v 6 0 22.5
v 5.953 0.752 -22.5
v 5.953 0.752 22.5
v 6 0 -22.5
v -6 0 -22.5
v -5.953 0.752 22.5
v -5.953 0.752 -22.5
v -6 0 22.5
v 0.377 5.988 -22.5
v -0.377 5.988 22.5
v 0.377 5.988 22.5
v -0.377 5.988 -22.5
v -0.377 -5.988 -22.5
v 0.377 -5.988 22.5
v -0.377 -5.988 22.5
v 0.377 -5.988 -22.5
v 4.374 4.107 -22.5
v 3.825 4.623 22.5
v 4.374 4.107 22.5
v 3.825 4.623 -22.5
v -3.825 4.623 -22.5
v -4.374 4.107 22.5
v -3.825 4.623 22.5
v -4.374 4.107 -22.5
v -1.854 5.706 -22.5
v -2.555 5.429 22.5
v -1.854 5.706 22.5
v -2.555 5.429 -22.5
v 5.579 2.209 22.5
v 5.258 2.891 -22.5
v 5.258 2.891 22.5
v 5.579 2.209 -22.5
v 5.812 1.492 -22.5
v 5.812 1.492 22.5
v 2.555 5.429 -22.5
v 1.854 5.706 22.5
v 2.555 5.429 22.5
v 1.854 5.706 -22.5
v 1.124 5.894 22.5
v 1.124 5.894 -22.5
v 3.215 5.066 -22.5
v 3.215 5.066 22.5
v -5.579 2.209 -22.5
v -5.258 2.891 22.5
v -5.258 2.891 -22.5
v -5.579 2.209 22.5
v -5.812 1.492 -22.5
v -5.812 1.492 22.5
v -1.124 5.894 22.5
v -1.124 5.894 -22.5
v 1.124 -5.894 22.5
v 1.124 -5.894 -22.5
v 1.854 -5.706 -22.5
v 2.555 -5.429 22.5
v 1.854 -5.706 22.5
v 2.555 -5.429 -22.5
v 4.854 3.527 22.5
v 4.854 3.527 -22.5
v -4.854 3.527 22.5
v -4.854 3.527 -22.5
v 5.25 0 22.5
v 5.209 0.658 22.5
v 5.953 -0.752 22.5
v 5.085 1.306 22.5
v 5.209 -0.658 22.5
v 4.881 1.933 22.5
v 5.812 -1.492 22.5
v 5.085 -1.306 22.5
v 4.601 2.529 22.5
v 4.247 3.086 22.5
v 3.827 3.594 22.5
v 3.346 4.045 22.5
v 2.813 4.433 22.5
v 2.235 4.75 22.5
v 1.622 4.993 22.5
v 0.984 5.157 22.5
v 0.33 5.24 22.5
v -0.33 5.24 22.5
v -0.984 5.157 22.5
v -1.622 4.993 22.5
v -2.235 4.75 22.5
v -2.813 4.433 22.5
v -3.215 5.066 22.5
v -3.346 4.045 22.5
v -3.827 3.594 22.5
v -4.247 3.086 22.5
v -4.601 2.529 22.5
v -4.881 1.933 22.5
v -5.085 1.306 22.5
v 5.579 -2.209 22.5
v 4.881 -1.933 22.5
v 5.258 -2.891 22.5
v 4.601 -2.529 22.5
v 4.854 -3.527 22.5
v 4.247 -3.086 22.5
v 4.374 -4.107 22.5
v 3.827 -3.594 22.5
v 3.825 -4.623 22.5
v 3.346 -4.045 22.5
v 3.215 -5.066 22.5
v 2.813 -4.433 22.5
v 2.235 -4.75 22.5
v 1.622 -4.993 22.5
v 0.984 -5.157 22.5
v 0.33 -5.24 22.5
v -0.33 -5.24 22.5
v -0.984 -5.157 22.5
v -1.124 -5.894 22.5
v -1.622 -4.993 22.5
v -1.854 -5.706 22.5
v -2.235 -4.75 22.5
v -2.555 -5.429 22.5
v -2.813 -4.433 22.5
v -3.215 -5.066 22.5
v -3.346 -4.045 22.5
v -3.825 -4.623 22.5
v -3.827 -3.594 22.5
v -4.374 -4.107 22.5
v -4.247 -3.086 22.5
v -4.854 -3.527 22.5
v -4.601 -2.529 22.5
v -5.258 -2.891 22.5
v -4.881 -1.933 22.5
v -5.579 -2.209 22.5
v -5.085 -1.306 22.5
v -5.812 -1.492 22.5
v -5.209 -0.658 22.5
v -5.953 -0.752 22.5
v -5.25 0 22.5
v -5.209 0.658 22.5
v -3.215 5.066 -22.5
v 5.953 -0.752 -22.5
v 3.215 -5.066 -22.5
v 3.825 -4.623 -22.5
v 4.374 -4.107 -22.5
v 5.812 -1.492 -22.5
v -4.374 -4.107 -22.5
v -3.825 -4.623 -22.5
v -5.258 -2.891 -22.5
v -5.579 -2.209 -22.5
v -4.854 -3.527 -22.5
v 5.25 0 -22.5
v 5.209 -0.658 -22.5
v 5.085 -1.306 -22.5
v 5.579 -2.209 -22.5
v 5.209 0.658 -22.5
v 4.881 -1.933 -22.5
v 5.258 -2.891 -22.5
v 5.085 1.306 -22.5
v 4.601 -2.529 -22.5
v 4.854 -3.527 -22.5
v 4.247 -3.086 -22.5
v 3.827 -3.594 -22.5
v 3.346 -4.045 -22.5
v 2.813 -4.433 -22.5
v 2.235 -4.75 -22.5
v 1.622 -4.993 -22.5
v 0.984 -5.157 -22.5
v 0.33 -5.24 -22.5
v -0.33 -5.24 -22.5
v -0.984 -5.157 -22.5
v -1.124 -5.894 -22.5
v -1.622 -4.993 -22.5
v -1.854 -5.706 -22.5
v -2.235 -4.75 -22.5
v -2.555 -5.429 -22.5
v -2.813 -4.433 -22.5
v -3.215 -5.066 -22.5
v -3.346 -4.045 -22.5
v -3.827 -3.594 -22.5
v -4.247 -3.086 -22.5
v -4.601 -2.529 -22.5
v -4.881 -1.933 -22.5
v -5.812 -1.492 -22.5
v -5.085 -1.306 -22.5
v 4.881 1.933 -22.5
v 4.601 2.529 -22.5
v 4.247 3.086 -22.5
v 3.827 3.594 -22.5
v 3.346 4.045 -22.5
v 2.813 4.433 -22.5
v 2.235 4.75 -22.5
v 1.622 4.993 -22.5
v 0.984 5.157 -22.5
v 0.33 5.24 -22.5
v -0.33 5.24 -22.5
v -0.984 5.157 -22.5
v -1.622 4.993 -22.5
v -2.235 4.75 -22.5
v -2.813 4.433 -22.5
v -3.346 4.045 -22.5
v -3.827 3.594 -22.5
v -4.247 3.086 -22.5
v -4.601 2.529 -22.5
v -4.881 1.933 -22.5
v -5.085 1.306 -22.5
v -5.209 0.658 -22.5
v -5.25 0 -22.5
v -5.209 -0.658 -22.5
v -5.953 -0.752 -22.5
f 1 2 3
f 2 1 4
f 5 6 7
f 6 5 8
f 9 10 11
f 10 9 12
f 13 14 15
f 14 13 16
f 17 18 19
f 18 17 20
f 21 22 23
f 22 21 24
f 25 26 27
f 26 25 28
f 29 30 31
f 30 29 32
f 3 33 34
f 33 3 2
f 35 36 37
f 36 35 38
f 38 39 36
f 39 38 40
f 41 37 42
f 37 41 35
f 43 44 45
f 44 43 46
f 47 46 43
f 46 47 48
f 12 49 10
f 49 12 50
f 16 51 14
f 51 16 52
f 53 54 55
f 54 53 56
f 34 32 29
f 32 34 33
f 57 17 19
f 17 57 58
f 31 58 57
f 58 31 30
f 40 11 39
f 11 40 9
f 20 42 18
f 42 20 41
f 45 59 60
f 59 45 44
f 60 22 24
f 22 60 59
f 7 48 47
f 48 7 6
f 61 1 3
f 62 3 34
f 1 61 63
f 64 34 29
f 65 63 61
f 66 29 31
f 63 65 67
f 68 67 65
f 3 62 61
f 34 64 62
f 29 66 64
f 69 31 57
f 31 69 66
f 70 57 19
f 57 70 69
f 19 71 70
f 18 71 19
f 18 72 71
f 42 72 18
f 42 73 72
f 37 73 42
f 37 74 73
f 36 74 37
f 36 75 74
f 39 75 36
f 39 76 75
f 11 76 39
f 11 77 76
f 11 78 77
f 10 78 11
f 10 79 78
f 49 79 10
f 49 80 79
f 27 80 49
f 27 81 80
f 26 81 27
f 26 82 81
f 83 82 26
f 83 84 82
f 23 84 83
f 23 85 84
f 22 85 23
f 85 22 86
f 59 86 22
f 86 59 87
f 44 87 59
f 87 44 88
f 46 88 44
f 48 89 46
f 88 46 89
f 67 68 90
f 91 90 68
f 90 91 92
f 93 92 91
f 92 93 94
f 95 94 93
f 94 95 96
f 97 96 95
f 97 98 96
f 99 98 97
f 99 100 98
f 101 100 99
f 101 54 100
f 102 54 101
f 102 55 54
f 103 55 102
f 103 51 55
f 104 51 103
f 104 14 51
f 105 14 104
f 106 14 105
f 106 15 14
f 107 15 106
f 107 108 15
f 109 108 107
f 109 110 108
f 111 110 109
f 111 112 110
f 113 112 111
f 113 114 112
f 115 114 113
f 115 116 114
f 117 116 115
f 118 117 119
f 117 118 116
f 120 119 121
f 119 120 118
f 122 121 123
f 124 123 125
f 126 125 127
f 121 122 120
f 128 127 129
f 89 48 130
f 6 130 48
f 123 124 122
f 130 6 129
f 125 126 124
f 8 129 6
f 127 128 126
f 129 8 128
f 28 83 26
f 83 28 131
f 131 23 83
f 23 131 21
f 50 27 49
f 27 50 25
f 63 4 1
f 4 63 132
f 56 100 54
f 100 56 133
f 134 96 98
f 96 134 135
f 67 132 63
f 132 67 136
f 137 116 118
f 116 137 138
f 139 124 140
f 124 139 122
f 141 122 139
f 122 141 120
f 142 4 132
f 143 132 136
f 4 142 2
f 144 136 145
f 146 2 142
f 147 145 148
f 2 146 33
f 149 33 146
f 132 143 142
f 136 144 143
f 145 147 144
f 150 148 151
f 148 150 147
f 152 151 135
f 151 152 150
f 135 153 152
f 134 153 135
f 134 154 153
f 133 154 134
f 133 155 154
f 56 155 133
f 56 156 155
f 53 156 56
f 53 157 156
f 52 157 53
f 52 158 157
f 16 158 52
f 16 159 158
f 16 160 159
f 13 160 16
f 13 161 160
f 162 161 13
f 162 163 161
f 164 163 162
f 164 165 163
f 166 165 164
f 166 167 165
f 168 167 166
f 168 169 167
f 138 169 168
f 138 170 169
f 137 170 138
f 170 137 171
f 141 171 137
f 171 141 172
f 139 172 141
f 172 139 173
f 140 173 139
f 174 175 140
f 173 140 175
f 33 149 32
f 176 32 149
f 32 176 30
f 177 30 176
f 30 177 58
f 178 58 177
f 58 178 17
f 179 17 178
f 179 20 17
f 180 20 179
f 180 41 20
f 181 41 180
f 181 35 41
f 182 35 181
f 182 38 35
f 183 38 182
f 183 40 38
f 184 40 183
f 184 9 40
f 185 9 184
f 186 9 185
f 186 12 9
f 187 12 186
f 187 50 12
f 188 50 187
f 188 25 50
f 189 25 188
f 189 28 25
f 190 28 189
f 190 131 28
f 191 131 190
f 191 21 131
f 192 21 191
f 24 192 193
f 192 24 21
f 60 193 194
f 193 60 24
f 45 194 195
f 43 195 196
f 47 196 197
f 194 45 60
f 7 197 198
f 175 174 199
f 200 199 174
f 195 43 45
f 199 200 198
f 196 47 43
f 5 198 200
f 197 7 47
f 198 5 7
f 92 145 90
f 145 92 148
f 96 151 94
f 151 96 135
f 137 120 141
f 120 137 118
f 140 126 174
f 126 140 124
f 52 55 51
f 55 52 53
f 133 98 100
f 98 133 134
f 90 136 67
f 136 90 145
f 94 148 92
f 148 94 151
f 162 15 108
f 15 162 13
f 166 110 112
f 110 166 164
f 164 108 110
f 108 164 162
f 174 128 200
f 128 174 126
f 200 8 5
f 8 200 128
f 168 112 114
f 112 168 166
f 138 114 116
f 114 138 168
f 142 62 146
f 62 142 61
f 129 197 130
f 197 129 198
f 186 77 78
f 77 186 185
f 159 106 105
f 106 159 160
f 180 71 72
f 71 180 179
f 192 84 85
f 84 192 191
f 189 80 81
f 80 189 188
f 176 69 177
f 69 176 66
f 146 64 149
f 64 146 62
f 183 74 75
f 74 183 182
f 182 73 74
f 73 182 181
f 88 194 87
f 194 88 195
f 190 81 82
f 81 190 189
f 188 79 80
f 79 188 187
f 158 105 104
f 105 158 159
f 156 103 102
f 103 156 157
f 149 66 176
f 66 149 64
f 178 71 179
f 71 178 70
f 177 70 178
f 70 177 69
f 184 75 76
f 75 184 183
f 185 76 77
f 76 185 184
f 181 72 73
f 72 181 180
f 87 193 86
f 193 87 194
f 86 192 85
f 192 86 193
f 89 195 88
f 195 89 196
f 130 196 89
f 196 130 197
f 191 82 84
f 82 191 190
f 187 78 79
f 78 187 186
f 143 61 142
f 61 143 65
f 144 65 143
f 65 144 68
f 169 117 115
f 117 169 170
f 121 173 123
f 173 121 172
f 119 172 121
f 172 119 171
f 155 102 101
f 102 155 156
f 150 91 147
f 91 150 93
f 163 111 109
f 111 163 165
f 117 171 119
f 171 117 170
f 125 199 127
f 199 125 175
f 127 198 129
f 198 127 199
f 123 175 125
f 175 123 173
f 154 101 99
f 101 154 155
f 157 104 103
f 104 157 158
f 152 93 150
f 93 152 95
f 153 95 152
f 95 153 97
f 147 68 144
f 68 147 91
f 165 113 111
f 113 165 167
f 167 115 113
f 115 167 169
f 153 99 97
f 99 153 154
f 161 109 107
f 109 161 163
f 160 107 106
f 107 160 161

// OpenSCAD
$fn = 50;


difference() {
	union() {
		translate(v = [0, 0, -22.5000000000]) {
			cylinder(h = 45, r = 6.0000000000);
		}
	}
	union() {
		translate(v = [0, 0, -100.0000000000]) {
			cylinder(h = 200, r = 5.2500000000);
		}
	}
}
